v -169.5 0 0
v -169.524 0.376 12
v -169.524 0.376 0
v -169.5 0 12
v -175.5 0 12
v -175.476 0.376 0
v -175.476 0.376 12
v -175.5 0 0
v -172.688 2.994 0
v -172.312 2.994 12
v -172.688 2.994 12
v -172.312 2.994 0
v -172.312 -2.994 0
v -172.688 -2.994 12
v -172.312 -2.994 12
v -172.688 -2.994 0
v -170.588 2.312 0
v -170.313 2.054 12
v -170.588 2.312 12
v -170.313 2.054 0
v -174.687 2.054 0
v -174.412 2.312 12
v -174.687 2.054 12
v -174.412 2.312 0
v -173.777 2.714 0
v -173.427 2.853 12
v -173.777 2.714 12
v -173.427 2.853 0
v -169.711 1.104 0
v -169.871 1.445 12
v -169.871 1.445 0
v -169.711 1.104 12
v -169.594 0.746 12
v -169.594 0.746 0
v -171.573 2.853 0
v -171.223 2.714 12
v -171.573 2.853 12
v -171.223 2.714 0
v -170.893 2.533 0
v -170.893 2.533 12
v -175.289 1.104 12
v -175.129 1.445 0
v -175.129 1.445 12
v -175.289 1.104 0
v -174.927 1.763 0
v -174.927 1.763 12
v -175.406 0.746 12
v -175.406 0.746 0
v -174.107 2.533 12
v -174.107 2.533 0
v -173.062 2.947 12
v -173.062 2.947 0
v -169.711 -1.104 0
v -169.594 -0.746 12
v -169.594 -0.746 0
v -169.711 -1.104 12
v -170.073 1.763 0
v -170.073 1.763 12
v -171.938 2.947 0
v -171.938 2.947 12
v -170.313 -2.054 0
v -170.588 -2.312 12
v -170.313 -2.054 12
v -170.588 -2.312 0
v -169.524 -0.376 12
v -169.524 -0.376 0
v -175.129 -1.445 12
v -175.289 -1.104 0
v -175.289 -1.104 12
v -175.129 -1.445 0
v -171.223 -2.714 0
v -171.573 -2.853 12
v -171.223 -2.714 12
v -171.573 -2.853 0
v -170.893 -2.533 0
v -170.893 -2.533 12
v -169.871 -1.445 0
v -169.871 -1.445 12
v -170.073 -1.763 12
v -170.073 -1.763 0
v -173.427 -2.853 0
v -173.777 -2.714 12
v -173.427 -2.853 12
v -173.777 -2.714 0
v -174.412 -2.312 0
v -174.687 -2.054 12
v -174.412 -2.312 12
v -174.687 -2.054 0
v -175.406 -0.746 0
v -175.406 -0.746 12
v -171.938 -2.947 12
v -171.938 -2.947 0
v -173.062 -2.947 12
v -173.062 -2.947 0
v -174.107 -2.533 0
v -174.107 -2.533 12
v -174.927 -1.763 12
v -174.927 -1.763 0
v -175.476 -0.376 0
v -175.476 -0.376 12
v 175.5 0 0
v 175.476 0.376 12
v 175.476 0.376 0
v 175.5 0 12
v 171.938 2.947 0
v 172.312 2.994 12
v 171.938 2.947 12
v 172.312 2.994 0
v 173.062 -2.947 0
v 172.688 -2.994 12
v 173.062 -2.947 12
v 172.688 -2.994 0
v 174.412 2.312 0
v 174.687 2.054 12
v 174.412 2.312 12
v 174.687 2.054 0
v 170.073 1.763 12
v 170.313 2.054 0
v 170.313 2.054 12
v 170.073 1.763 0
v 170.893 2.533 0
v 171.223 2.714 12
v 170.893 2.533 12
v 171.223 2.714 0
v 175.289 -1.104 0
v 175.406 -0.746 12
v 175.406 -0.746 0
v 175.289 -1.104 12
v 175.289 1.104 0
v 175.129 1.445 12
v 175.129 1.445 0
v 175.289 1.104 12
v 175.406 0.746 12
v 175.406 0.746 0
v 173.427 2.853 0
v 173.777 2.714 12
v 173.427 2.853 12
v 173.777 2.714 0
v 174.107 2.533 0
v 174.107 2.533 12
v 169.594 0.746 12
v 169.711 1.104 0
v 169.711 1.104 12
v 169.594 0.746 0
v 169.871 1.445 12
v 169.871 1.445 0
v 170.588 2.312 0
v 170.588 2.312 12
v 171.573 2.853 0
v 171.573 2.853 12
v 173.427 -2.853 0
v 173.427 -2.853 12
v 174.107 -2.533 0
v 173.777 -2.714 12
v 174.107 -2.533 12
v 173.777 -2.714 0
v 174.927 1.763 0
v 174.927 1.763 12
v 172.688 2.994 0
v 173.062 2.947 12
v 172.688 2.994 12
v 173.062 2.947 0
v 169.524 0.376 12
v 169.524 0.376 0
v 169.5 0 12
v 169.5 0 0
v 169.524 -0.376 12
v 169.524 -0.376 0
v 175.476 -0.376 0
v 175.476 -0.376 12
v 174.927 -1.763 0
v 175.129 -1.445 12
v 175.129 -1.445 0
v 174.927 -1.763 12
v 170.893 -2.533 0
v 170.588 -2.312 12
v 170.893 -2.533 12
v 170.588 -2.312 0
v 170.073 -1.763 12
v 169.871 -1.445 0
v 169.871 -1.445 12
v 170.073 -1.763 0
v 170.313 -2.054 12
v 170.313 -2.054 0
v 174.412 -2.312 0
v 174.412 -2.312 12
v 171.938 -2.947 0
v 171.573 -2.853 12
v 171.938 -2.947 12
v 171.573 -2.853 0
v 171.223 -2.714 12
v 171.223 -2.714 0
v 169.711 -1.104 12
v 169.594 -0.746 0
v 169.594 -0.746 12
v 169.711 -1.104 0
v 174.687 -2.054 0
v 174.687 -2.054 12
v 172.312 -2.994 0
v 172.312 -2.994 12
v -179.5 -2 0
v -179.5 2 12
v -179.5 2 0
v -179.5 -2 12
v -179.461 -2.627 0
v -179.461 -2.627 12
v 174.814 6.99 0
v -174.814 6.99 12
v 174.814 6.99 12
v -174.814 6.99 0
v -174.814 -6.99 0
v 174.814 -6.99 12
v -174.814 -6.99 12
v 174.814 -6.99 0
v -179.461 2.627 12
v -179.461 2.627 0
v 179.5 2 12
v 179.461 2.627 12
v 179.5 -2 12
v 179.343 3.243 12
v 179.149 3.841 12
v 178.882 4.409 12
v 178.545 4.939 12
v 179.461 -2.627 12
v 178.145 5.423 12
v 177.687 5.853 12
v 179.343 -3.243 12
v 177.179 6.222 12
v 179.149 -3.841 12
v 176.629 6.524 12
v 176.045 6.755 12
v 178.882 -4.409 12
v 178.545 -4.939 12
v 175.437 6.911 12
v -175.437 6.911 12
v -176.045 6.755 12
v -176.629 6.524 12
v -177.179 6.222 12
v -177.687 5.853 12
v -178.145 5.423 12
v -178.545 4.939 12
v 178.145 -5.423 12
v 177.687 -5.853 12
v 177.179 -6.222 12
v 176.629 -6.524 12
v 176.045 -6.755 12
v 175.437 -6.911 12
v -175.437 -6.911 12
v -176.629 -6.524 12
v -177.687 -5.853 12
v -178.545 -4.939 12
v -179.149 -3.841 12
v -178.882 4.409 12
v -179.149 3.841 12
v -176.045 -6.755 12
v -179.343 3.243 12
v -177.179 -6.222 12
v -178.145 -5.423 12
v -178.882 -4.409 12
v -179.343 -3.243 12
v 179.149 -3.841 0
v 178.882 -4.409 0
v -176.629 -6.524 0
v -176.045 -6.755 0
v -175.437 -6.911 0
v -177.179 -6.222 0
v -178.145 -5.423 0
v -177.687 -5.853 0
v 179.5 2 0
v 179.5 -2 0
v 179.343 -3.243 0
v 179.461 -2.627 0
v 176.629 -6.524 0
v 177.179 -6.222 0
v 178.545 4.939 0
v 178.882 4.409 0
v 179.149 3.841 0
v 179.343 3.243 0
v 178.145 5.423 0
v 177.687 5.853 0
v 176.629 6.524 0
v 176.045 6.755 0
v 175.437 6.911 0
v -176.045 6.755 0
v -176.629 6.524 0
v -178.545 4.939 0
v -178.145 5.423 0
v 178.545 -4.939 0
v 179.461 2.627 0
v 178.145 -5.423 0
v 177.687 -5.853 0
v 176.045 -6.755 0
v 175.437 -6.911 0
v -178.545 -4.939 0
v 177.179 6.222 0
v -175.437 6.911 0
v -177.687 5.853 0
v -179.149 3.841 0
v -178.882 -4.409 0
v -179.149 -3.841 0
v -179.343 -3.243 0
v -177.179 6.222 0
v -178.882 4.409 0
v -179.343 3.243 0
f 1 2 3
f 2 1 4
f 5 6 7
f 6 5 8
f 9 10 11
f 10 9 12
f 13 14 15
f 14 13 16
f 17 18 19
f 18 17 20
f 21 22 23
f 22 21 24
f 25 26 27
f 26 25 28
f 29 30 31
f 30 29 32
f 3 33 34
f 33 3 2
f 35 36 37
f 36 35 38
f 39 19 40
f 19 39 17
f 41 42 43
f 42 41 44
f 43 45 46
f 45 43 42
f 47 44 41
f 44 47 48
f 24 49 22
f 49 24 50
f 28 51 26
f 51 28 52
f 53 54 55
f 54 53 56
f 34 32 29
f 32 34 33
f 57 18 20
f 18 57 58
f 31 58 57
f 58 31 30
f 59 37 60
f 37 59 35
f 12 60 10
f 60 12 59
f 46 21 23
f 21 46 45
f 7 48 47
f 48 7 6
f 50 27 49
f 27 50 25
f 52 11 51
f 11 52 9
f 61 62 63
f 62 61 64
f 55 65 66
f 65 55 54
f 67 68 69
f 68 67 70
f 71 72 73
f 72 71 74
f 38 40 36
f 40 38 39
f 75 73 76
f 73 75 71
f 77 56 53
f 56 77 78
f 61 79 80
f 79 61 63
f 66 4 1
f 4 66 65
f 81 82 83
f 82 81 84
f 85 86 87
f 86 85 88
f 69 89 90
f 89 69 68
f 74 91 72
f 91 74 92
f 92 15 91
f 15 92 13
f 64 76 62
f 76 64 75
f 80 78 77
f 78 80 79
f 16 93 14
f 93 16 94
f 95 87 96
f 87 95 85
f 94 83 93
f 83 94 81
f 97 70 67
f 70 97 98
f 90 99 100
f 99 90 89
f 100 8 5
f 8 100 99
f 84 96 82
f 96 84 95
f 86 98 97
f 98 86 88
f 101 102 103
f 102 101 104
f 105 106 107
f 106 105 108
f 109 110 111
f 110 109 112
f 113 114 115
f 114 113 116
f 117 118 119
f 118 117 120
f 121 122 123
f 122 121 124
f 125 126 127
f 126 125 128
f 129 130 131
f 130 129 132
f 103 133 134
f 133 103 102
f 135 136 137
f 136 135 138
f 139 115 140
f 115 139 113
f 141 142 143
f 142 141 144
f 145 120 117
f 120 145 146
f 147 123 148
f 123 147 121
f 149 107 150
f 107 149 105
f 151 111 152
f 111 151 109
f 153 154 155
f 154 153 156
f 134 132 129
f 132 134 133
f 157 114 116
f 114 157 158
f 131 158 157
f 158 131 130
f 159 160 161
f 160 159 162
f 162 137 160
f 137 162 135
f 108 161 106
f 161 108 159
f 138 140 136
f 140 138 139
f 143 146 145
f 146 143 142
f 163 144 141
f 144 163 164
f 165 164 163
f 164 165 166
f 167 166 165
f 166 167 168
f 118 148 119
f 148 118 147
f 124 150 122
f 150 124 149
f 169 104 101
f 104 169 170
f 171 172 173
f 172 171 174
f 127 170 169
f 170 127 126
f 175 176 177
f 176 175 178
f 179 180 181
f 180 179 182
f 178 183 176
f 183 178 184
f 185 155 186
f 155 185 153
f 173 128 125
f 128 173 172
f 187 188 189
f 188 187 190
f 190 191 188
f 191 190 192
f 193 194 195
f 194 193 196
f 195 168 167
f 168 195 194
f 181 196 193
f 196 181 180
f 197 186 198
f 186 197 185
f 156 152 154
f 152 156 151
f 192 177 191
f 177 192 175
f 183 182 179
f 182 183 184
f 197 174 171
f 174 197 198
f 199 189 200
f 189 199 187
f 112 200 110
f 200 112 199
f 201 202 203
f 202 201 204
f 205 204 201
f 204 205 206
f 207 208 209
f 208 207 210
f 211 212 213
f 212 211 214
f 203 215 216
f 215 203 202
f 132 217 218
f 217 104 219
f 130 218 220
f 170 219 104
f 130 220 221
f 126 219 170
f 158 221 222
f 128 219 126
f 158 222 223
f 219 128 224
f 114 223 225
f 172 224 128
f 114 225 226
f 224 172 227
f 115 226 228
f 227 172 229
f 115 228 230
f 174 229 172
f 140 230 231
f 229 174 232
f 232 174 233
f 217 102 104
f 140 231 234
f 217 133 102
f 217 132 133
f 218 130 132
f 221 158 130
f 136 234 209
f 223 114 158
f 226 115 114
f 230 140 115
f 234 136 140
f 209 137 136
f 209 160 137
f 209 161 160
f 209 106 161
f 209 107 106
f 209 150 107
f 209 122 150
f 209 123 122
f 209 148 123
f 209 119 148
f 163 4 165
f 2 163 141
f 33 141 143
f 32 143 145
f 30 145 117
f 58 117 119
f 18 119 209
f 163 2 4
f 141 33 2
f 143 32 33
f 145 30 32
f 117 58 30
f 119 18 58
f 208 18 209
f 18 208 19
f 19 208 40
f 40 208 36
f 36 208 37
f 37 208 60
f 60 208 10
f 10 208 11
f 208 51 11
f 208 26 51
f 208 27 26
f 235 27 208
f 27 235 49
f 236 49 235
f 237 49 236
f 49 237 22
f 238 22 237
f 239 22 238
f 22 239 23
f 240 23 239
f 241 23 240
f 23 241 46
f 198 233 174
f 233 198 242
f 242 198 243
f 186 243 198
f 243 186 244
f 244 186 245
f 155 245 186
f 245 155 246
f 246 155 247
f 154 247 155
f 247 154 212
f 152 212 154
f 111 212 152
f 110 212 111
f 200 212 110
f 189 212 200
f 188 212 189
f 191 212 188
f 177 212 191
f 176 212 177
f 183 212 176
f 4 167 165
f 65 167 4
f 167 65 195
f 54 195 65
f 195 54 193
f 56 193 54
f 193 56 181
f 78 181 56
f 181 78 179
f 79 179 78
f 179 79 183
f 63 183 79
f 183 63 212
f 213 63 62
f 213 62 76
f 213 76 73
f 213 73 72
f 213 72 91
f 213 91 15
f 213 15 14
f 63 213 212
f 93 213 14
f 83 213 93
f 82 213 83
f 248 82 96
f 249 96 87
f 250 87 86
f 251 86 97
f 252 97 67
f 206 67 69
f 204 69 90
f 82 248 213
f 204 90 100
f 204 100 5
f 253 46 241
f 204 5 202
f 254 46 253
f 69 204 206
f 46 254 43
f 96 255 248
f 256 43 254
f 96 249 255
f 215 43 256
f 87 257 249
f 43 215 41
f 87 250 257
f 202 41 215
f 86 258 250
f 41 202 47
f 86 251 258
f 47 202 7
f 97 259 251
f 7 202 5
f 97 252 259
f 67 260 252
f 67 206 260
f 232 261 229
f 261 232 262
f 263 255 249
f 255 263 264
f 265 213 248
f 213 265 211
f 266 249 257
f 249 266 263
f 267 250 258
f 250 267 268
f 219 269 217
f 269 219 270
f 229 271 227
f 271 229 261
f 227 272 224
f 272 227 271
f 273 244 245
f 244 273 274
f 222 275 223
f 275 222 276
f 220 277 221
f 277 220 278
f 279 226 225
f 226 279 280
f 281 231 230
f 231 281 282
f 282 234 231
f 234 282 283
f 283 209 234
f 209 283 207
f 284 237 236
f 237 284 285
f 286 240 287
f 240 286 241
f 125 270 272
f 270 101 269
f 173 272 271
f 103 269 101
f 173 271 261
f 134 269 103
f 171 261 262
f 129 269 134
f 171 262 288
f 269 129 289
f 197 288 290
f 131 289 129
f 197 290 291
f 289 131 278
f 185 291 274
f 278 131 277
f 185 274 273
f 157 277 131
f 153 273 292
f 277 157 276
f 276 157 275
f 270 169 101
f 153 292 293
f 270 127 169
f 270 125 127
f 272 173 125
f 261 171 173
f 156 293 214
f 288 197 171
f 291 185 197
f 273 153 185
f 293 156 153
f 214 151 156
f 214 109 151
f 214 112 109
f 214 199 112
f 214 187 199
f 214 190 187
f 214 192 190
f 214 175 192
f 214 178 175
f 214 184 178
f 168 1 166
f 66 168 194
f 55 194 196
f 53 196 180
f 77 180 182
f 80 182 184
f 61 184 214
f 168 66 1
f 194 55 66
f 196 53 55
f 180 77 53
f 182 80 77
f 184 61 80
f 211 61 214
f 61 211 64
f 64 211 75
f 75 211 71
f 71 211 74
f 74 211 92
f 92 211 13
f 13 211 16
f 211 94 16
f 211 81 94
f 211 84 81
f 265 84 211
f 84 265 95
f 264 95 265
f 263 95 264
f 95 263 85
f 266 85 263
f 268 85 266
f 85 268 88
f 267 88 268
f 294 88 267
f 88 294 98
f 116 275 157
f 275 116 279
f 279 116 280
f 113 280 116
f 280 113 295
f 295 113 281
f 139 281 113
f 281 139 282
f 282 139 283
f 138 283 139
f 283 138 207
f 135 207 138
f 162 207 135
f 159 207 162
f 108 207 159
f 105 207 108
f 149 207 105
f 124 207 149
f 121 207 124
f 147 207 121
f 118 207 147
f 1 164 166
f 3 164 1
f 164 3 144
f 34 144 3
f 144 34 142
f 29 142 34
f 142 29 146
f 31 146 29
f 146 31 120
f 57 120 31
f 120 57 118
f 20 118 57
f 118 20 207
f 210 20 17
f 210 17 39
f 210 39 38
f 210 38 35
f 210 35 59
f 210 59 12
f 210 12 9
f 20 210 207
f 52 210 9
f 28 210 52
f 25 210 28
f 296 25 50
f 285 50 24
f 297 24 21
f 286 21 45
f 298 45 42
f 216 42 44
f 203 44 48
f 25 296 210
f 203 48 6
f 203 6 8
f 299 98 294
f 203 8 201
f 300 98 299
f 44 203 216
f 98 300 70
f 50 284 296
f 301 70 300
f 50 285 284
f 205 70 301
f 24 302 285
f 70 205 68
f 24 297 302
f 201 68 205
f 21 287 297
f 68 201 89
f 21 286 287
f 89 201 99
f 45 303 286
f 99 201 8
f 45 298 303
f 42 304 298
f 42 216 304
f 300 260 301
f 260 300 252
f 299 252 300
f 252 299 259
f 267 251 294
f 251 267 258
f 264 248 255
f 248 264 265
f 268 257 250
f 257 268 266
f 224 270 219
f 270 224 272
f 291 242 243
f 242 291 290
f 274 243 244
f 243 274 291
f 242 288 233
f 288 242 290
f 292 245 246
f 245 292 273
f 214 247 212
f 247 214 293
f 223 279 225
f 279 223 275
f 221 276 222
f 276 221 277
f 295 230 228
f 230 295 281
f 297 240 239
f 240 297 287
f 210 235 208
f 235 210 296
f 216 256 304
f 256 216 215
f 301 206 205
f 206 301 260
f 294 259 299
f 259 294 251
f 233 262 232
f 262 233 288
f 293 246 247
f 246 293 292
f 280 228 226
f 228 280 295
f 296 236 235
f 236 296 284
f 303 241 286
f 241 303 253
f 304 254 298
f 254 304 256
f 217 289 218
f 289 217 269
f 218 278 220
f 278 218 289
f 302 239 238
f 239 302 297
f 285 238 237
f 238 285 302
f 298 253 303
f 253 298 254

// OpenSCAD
$fn = 50;


difference() {
	union() {
		hull() {
			translate(v = [-174.5000000000, 2.0000000000, 0]) {
				cylinder(h = 12, r = 5);
			}
			translate(v = [174.5000000000, 2.0000000000, 0]) {
				cylinder(h = 12, r = 5);
			}
			translate(v = [-174.5000000000, -2.0000000000, 0]) {
				cylinder(h = 12, r = 5);
			}
			translate(v = [174.5000000000, -2.0000000000, 0]) {
				cylinder(h = 12, r = 5);
			}
		}
	}
	union() {
		translate(v = [-172.5000000000, 0.0000000000, -100.0000000000]) {
			cylinder(h = 200, r = 3.0000000000);
		}
		translate(v = [-172.5000000000, 0.0000000000, -100.0000000000]) {
			cylinder(h = 200, r = 3.0000000000);
		}
		translate(v = [172.5000000000, 0.0000000000, -100.0000000000]) {
			cylinder(h = 200, r = 3.0000000000);
		}
		translate(v = [172.5000000000, 0.0000000000, -100.0000000000]) {
			cylinder(h = 200, r = 3.0000000000);
		}
	}
}
